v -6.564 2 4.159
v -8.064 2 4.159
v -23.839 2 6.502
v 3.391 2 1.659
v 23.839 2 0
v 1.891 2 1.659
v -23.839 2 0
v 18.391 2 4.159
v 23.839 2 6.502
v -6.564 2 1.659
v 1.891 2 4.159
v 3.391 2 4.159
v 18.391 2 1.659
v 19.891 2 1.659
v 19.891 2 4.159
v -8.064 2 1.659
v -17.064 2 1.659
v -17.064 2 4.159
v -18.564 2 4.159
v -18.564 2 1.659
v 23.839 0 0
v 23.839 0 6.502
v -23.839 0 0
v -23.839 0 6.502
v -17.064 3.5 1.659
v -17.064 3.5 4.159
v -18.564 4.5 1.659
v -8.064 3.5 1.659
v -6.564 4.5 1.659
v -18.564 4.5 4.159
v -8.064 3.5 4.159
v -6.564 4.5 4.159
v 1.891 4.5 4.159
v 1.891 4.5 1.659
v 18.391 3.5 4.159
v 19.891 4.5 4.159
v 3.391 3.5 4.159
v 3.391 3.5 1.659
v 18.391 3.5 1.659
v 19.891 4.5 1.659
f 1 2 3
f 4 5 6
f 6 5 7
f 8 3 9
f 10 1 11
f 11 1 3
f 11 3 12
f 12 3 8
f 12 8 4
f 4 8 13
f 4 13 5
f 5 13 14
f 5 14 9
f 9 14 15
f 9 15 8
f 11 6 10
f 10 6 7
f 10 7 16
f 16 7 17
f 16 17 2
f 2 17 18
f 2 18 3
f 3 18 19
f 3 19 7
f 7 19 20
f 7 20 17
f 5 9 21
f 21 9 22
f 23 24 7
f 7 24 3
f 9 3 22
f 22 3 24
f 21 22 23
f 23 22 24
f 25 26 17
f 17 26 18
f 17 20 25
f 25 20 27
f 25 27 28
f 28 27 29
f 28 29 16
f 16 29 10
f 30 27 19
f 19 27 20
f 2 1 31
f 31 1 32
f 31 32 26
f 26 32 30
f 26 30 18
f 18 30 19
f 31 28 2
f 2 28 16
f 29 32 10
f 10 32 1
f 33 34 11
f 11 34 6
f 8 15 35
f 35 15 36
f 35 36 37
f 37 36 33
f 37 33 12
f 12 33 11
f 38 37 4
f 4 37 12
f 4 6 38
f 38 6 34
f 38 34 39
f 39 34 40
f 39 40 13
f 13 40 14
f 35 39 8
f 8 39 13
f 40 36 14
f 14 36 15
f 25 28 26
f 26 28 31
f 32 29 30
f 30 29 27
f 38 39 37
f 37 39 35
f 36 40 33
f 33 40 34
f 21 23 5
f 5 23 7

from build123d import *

# Parameters (mm, degrees)
SKETCH1_W           = 47.678483764
SKETCH1_H           = 13.004323218
BOSS_EXTRUDE1_DEPTH = 2
SKETCH2_W           = 1.5
SKETCH2_H           = 2.5
BOSS_EXTRUDE2_DEPTH = 1.5
SKETCH3_W           = 12
SKETCH3_H           = 2.5
SKETCH3_W_2         = 18
BOSS_EXTRUDE3_DEPTH = 1
SKETCH4_W           = 47.678483764
SKETCH4_H           = 6.502161609
CUT_EXTRUDE1_DEPTH  = 25.83621467


with BuildPart() as part:
    # Sketch1 → Boss-Extrude1 (new body)
    with BuildSketch(Plane(origin=(0, 0, 0), x_dir=(1, 0, 0), z_dir=(0, 1, 0))):
        Rectangle(SKETCH1_W, SKETCH1_H)
    extrude(amount=BOSS_EXTRUDE1_DEPTH)

    # Sketch2 → Boss-Extrude2 (add)
    with BuildSketch(Plane(origin=(0, 2, 0), x_dir=(1, 0, 0), z_dir=(0, 1, 0))):
        with Locations((-17.814028346, -2.908609225)):
            Rectangle(SKETCH2_W, SKETCH2_H)
        with Locations((-7.314028346, -2.908609225)):
            Rectangle(SKETCH2_W, SKETCH2_H)
        with Locations((2.641012715, -2.908609225)):
            Rectangle(SKETCH2_W, SKETCH2_H)
        with Locations((19.141012715, -2.908609225)):
            Rectangle(SKETCH2_W, SKETCH2_H)
    extrude(amount=BOSS_EXTRUDE2_DEPTH)

    # Sketch3 → Boss-Extrude3 (add)
    with BuildSketch(Plane(origin=(0, 3.5, 0), x_dir=(1, 0, 0), z_dir=(0, 1, 0))):
        with Locations((-12.564028346, -2.908609225)):
            Rectangle(SKETCH3_W, SKETCH3_H)
        with Locations((10.891012715, -2.908609225)):
            Rectangle(SKETCH3_W_2, SKETCH3_H)
    extrude(amount=BOSS_EXTRUDE3_DEPTH)

    # Sketch4 → Cut-Extrude1 (cut, through all)
    with BuildSketch(Plane(origin=(0, 2, 0), x_dir=(1, 0, 0), z_dir=(0, 1, 0))):
        with Locations((0, 3.251080805)):
            Rectangle(SKETCH4_W, SKETCH4_H)
    extrude(amount=-CUT_EXTRUDE1_DEPTH, mode=Mode.SUBTRACT)


solid = part.part
